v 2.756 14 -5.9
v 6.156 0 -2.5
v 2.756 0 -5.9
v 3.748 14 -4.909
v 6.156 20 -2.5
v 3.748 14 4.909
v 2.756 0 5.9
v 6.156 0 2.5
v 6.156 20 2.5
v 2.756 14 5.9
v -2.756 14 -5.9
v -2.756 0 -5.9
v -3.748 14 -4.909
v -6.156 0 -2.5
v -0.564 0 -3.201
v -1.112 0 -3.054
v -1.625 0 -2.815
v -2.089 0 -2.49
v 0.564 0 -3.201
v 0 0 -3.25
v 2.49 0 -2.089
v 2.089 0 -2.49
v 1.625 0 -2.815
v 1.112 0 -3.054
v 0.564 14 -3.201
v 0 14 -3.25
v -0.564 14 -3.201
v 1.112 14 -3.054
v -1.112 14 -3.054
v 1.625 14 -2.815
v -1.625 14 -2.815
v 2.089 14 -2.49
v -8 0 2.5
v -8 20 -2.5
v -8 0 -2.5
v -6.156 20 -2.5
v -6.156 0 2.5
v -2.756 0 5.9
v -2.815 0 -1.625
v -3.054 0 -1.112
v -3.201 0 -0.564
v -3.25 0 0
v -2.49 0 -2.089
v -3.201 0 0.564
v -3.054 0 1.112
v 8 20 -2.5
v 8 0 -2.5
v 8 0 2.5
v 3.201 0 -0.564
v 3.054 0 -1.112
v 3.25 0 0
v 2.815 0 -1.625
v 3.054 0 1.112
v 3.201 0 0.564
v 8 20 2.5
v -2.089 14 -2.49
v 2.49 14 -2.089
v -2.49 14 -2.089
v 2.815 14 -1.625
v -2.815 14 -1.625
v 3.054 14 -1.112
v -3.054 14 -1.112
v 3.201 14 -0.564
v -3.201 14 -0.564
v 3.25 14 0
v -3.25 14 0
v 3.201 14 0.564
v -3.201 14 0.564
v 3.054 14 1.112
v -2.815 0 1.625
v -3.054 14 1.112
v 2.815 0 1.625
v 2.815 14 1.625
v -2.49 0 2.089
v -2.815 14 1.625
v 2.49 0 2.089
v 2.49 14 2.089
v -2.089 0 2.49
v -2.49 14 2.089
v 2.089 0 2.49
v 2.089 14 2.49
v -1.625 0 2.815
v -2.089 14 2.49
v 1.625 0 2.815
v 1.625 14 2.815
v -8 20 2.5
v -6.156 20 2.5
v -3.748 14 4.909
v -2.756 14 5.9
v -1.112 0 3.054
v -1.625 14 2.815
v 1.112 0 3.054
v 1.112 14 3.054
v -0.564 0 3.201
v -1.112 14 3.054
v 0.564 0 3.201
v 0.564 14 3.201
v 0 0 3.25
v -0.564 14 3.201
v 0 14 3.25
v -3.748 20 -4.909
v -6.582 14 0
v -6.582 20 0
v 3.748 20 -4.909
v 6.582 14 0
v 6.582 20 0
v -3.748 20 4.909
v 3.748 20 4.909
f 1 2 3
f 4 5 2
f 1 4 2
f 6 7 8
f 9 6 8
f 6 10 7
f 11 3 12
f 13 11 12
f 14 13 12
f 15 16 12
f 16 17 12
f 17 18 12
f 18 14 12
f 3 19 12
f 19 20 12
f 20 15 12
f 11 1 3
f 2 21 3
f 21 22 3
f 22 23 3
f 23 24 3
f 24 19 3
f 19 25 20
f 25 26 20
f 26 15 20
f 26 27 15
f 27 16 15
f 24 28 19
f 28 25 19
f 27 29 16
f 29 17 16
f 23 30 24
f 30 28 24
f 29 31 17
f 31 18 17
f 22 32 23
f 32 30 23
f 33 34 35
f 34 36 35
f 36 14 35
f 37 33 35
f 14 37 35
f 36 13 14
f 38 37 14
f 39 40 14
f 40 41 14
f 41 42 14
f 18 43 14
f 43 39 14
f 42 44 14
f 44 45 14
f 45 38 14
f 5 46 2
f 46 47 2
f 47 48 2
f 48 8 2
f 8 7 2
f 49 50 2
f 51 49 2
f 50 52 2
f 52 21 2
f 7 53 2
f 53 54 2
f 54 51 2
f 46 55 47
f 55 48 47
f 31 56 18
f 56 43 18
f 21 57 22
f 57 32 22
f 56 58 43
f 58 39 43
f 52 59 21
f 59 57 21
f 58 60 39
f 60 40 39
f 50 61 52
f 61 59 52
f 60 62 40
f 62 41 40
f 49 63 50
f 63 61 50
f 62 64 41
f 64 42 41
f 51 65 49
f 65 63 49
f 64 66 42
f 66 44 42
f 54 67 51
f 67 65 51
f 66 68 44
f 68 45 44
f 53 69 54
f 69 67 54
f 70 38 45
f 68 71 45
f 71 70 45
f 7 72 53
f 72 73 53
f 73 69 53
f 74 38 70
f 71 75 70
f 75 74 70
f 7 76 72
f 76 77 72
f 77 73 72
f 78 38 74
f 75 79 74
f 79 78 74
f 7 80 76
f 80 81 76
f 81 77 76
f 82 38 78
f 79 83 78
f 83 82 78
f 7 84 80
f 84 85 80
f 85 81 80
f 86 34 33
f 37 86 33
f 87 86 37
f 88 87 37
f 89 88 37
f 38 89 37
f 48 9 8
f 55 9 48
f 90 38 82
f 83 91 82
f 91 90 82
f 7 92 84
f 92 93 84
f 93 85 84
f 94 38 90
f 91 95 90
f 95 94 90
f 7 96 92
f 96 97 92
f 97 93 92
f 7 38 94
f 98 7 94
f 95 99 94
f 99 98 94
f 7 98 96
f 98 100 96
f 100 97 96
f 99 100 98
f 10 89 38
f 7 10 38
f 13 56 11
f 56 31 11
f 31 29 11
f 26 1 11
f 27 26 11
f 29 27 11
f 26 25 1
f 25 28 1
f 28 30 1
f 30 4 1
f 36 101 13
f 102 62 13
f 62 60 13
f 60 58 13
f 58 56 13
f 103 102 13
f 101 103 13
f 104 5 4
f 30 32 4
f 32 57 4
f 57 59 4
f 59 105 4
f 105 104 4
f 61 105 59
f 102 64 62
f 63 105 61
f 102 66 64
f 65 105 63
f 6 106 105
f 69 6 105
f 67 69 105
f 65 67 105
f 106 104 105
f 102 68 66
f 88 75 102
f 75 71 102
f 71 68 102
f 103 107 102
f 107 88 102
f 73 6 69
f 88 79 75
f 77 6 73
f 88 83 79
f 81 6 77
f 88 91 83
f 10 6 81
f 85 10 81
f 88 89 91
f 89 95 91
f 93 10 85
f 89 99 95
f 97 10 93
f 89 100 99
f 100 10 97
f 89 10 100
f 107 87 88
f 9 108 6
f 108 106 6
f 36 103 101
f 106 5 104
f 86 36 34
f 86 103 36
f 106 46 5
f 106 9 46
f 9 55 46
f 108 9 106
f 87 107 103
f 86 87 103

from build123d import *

# Parameters (mm, degrees)
RESSALTO_EXTRUS_O1_DEPTH = 20
CORTE_EXTRUS_O1_DEPTH    = 6
ESBO_O3_R                = 3.25
CORTE_EXTRUS_O2_DEPTH    = 18.170032033


with BuildPart() as part:
    # Esboço1 → Ressalto-extrusão1 (new body)
    with BuildSketch(Plane(origin=(0, 0, 0), x_dir=(1, 0, 0), z_dir=(0, 1, 0))):
        Polygon((-8, 2.5), (-6.156497116, 2.5), (-2.756497116, 5.9), (2.756497116, 5.9), (6.156497116, 2.5), (8, 2.5), (8, -2.5), (6.156497116, -2.5), (2.756497116, -5.9), (-2.756497116, -5.9), (-6.156497116, -2.5), (-8, -2.5), align=None)
    extrude(amount=RESSALTO_EXTRUS_O1_DEPTH)

    # Esboço2 → Corte-extrusão1 (cut)
    with BuildSketch(Plane(origin=(0, 20, 0), x_dir=(1, 0, 0), z_dir=(0, 1, 0))):
        Polygon((-3.290896534, 5.7), (-3.290896534, 6.558868729), (3.290896534, 6.558868729), (3.290896534, 5.7), (6.581793069, 0), (3.290896534, -5.7), (3.290896534, -6.558868729), (-3.290896534, -6.558868729), (-3.290896534, -5.7), (-6.581793069, 0), align=None)
    extrude(amount=-CORTE_EXTRUS_O1_DEPTH, mode=Mode.SUBTRACT)

    # Esboço3 → Corte-extrusão2 (cut, through all)
    with BuildSketch(Plane(origin=(0, 14, 0), x_dir=(1, 0, 0), z_dir=(0, 1, 0))):
        with Locations(Location((0, 0, 0), (0, 0, 270))):
            Circle(ESBO_O3_R)
    extrude(amount=-CORTE_EXTRUS_O2_DEPTH, mode=Mode.SUBTRACT)


solid = part.part
